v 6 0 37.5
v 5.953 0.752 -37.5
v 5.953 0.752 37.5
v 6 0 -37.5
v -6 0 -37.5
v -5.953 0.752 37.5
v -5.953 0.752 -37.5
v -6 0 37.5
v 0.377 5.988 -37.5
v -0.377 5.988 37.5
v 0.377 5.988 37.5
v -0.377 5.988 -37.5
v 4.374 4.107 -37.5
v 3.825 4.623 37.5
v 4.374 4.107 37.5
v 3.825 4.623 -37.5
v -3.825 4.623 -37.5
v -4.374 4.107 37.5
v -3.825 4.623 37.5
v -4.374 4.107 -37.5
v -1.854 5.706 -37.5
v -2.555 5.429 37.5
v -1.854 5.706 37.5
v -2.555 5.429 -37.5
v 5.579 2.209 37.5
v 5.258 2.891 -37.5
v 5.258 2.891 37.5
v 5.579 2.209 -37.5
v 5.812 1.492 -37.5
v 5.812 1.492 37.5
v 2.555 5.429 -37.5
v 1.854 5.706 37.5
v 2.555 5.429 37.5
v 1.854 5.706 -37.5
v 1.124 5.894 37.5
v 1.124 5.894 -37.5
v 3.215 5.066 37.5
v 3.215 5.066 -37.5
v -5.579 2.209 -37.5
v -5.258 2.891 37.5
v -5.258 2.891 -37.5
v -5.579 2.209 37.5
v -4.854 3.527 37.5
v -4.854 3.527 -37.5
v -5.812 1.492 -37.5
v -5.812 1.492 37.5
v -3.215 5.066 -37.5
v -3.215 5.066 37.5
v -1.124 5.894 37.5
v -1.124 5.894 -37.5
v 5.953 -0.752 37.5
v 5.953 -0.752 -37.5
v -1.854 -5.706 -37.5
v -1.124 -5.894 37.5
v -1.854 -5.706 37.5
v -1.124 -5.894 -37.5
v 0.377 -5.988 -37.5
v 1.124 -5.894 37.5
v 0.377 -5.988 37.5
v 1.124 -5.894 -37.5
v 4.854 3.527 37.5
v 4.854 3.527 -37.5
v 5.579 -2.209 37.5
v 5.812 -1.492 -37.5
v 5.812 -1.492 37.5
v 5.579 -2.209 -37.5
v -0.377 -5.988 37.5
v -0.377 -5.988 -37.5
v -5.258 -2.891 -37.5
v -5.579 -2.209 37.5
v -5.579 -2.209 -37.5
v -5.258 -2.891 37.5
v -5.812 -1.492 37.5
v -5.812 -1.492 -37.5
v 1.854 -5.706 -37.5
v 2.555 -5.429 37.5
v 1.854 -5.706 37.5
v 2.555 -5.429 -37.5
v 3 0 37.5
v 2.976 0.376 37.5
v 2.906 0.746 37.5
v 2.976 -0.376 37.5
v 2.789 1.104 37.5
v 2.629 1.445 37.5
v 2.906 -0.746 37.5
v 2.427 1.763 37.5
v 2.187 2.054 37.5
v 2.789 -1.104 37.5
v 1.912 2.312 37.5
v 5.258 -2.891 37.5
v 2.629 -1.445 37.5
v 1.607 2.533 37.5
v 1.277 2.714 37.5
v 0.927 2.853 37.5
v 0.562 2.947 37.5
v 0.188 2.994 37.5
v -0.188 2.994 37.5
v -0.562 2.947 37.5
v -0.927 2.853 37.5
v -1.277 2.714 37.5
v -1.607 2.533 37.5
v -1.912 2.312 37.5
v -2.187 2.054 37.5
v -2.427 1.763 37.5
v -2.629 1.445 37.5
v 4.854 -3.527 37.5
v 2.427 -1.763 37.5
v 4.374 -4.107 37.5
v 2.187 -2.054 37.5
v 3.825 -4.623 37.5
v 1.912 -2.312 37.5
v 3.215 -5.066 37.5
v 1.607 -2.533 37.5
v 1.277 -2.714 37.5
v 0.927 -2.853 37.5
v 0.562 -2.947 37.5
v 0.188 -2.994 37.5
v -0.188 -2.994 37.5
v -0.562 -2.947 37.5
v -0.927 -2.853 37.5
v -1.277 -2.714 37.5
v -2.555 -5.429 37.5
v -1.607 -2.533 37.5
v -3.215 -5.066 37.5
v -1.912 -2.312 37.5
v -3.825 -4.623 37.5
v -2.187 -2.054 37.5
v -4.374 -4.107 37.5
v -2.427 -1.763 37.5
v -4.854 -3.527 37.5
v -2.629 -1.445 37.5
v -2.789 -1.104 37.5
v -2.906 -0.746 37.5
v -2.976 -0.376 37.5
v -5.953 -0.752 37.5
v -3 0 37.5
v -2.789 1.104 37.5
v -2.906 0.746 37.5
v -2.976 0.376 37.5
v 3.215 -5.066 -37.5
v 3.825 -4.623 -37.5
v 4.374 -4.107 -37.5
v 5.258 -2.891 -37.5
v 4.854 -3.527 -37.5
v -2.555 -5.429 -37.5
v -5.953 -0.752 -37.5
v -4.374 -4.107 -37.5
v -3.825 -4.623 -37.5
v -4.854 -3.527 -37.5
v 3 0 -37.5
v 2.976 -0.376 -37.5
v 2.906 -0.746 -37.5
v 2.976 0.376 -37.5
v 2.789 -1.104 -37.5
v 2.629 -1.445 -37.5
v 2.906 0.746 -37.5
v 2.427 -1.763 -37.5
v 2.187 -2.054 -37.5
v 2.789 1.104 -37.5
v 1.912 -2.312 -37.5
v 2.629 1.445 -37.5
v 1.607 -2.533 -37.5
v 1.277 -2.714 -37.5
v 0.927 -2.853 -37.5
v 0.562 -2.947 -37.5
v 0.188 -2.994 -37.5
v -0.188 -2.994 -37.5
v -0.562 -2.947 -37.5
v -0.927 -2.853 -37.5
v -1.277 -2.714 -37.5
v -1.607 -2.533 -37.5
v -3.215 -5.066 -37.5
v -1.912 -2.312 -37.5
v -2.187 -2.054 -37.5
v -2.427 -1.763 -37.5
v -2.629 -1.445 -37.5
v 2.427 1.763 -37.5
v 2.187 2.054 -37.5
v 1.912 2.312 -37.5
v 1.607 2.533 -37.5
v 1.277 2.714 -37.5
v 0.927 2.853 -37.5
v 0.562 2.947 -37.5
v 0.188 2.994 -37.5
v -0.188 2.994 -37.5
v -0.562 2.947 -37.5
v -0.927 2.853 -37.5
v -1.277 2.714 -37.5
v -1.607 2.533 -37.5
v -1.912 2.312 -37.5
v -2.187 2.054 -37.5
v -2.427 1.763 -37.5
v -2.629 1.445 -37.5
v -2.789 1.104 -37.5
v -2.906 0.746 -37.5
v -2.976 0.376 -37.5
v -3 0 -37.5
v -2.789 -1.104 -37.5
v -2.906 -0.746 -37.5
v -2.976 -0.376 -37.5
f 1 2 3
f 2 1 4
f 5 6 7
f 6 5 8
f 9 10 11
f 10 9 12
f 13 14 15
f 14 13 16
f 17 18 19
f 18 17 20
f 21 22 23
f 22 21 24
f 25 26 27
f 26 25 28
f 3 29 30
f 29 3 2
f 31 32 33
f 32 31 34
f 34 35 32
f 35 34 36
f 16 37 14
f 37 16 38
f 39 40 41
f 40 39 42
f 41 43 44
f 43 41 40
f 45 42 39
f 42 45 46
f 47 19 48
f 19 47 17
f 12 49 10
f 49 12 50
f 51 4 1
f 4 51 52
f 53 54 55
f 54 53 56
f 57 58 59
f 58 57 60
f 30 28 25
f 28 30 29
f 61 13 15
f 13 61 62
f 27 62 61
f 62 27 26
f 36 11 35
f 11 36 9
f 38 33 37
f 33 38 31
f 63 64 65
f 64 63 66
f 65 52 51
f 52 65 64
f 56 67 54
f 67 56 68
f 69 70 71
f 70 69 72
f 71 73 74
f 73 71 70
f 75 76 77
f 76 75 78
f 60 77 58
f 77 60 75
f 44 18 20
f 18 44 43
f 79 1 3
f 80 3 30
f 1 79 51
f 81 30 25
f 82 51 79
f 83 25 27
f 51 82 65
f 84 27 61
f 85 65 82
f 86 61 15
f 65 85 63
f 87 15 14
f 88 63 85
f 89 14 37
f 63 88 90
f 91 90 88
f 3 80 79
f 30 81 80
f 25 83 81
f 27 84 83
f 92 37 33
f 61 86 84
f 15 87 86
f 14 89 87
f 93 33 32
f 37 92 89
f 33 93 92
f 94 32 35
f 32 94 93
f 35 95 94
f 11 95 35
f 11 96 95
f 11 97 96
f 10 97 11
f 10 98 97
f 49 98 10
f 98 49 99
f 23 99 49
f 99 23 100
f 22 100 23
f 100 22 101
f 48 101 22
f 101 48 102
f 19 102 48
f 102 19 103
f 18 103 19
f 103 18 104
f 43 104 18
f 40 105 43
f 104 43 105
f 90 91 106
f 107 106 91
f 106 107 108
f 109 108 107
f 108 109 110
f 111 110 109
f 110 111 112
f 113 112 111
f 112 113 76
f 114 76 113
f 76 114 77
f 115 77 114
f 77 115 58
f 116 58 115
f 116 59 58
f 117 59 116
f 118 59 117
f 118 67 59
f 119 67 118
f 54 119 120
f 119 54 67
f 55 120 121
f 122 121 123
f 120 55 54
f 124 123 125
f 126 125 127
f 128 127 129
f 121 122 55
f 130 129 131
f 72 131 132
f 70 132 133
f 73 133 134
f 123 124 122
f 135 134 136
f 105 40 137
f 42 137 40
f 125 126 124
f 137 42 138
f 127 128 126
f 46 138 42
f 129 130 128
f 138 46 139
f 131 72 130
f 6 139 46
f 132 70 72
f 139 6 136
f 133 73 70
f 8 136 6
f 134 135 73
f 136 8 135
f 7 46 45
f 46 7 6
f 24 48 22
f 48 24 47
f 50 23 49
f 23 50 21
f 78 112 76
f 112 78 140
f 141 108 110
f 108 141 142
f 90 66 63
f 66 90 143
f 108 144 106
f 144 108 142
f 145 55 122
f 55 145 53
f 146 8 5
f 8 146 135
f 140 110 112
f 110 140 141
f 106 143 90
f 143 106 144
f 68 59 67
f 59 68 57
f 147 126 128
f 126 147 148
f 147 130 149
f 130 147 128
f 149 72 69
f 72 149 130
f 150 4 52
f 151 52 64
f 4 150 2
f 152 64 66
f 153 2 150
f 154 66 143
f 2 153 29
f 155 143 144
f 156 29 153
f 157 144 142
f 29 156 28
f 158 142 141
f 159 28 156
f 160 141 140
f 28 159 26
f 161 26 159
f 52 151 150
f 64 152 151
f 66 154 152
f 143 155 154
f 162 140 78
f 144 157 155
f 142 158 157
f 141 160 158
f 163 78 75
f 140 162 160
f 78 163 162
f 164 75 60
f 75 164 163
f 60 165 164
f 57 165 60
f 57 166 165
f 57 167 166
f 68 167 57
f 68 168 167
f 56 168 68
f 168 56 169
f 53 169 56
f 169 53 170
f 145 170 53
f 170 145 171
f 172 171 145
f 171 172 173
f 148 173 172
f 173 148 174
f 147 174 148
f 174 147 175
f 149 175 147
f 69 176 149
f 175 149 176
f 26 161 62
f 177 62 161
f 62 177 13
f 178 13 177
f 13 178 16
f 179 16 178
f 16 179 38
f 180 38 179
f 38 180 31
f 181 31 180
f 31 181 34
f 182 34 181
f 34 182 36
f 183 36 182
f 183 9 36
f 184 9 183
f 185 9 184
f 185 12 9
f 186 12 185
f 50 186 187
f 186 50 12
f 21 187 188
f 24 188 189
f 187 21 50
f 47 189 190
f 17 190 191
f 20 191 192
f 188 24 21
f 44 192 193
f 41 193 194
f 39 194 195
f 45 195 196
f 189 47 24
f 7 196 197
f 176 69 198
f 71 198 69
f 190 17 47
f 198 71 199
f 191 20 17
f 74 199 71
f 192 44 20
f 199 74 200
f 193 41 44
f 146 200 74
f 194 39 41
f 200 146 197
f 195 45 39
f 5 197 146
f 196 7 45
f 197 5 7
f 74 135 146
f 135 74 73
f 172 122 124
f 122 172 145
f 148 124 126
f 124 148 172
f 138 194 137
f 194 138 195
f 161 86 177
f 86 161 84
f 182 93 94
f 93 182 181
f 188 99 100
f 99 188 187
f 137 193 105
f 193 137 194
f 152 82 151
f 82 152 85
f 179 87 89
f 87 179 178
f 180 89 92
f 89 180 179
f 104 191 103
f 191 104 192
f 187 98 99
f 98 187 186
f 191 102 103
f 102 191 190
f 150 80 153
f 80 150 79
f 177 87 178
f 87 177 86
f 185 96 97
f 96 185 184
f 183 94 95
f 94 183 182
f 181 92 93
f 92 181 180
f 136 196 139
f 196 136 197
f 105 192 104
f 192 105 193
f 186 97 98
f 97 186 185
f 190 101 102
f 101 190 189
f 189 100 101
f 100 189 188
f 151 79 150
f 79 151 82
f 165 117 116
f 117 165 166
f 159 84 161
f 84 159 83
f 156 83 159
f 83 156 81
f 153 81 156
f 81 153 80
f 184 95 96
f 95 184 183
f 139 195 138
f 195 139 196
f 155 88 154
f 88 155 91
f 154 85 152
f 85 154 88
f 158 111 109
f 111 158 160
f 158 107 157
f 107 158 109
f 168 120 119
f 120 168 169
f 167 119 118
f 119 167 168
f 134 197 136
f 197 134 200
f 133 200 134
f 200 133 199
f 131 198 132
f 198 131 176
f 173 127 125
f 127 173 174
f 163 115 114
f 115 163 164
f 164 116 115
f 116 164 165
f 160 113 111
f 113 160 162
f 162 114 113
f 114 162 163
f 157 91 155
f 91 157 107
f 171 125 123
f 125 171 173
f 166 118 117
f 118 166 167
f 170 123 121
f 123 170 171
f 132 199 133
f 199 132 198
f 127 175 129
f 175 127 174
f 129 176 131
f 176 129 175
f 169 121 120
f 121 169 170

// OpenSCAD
$fn = 50;


difference() {
	union() {
		translate(v = [0, 0, -37.5000000000]) {
			cylinder(h = 75, r = 6.0000000000);
		}
	}
	union() {
		translate(v = [0, 0, -100.0000000000]) {
			cylinder(h = 200, r = 3.0000000000);
		}
	}
}
